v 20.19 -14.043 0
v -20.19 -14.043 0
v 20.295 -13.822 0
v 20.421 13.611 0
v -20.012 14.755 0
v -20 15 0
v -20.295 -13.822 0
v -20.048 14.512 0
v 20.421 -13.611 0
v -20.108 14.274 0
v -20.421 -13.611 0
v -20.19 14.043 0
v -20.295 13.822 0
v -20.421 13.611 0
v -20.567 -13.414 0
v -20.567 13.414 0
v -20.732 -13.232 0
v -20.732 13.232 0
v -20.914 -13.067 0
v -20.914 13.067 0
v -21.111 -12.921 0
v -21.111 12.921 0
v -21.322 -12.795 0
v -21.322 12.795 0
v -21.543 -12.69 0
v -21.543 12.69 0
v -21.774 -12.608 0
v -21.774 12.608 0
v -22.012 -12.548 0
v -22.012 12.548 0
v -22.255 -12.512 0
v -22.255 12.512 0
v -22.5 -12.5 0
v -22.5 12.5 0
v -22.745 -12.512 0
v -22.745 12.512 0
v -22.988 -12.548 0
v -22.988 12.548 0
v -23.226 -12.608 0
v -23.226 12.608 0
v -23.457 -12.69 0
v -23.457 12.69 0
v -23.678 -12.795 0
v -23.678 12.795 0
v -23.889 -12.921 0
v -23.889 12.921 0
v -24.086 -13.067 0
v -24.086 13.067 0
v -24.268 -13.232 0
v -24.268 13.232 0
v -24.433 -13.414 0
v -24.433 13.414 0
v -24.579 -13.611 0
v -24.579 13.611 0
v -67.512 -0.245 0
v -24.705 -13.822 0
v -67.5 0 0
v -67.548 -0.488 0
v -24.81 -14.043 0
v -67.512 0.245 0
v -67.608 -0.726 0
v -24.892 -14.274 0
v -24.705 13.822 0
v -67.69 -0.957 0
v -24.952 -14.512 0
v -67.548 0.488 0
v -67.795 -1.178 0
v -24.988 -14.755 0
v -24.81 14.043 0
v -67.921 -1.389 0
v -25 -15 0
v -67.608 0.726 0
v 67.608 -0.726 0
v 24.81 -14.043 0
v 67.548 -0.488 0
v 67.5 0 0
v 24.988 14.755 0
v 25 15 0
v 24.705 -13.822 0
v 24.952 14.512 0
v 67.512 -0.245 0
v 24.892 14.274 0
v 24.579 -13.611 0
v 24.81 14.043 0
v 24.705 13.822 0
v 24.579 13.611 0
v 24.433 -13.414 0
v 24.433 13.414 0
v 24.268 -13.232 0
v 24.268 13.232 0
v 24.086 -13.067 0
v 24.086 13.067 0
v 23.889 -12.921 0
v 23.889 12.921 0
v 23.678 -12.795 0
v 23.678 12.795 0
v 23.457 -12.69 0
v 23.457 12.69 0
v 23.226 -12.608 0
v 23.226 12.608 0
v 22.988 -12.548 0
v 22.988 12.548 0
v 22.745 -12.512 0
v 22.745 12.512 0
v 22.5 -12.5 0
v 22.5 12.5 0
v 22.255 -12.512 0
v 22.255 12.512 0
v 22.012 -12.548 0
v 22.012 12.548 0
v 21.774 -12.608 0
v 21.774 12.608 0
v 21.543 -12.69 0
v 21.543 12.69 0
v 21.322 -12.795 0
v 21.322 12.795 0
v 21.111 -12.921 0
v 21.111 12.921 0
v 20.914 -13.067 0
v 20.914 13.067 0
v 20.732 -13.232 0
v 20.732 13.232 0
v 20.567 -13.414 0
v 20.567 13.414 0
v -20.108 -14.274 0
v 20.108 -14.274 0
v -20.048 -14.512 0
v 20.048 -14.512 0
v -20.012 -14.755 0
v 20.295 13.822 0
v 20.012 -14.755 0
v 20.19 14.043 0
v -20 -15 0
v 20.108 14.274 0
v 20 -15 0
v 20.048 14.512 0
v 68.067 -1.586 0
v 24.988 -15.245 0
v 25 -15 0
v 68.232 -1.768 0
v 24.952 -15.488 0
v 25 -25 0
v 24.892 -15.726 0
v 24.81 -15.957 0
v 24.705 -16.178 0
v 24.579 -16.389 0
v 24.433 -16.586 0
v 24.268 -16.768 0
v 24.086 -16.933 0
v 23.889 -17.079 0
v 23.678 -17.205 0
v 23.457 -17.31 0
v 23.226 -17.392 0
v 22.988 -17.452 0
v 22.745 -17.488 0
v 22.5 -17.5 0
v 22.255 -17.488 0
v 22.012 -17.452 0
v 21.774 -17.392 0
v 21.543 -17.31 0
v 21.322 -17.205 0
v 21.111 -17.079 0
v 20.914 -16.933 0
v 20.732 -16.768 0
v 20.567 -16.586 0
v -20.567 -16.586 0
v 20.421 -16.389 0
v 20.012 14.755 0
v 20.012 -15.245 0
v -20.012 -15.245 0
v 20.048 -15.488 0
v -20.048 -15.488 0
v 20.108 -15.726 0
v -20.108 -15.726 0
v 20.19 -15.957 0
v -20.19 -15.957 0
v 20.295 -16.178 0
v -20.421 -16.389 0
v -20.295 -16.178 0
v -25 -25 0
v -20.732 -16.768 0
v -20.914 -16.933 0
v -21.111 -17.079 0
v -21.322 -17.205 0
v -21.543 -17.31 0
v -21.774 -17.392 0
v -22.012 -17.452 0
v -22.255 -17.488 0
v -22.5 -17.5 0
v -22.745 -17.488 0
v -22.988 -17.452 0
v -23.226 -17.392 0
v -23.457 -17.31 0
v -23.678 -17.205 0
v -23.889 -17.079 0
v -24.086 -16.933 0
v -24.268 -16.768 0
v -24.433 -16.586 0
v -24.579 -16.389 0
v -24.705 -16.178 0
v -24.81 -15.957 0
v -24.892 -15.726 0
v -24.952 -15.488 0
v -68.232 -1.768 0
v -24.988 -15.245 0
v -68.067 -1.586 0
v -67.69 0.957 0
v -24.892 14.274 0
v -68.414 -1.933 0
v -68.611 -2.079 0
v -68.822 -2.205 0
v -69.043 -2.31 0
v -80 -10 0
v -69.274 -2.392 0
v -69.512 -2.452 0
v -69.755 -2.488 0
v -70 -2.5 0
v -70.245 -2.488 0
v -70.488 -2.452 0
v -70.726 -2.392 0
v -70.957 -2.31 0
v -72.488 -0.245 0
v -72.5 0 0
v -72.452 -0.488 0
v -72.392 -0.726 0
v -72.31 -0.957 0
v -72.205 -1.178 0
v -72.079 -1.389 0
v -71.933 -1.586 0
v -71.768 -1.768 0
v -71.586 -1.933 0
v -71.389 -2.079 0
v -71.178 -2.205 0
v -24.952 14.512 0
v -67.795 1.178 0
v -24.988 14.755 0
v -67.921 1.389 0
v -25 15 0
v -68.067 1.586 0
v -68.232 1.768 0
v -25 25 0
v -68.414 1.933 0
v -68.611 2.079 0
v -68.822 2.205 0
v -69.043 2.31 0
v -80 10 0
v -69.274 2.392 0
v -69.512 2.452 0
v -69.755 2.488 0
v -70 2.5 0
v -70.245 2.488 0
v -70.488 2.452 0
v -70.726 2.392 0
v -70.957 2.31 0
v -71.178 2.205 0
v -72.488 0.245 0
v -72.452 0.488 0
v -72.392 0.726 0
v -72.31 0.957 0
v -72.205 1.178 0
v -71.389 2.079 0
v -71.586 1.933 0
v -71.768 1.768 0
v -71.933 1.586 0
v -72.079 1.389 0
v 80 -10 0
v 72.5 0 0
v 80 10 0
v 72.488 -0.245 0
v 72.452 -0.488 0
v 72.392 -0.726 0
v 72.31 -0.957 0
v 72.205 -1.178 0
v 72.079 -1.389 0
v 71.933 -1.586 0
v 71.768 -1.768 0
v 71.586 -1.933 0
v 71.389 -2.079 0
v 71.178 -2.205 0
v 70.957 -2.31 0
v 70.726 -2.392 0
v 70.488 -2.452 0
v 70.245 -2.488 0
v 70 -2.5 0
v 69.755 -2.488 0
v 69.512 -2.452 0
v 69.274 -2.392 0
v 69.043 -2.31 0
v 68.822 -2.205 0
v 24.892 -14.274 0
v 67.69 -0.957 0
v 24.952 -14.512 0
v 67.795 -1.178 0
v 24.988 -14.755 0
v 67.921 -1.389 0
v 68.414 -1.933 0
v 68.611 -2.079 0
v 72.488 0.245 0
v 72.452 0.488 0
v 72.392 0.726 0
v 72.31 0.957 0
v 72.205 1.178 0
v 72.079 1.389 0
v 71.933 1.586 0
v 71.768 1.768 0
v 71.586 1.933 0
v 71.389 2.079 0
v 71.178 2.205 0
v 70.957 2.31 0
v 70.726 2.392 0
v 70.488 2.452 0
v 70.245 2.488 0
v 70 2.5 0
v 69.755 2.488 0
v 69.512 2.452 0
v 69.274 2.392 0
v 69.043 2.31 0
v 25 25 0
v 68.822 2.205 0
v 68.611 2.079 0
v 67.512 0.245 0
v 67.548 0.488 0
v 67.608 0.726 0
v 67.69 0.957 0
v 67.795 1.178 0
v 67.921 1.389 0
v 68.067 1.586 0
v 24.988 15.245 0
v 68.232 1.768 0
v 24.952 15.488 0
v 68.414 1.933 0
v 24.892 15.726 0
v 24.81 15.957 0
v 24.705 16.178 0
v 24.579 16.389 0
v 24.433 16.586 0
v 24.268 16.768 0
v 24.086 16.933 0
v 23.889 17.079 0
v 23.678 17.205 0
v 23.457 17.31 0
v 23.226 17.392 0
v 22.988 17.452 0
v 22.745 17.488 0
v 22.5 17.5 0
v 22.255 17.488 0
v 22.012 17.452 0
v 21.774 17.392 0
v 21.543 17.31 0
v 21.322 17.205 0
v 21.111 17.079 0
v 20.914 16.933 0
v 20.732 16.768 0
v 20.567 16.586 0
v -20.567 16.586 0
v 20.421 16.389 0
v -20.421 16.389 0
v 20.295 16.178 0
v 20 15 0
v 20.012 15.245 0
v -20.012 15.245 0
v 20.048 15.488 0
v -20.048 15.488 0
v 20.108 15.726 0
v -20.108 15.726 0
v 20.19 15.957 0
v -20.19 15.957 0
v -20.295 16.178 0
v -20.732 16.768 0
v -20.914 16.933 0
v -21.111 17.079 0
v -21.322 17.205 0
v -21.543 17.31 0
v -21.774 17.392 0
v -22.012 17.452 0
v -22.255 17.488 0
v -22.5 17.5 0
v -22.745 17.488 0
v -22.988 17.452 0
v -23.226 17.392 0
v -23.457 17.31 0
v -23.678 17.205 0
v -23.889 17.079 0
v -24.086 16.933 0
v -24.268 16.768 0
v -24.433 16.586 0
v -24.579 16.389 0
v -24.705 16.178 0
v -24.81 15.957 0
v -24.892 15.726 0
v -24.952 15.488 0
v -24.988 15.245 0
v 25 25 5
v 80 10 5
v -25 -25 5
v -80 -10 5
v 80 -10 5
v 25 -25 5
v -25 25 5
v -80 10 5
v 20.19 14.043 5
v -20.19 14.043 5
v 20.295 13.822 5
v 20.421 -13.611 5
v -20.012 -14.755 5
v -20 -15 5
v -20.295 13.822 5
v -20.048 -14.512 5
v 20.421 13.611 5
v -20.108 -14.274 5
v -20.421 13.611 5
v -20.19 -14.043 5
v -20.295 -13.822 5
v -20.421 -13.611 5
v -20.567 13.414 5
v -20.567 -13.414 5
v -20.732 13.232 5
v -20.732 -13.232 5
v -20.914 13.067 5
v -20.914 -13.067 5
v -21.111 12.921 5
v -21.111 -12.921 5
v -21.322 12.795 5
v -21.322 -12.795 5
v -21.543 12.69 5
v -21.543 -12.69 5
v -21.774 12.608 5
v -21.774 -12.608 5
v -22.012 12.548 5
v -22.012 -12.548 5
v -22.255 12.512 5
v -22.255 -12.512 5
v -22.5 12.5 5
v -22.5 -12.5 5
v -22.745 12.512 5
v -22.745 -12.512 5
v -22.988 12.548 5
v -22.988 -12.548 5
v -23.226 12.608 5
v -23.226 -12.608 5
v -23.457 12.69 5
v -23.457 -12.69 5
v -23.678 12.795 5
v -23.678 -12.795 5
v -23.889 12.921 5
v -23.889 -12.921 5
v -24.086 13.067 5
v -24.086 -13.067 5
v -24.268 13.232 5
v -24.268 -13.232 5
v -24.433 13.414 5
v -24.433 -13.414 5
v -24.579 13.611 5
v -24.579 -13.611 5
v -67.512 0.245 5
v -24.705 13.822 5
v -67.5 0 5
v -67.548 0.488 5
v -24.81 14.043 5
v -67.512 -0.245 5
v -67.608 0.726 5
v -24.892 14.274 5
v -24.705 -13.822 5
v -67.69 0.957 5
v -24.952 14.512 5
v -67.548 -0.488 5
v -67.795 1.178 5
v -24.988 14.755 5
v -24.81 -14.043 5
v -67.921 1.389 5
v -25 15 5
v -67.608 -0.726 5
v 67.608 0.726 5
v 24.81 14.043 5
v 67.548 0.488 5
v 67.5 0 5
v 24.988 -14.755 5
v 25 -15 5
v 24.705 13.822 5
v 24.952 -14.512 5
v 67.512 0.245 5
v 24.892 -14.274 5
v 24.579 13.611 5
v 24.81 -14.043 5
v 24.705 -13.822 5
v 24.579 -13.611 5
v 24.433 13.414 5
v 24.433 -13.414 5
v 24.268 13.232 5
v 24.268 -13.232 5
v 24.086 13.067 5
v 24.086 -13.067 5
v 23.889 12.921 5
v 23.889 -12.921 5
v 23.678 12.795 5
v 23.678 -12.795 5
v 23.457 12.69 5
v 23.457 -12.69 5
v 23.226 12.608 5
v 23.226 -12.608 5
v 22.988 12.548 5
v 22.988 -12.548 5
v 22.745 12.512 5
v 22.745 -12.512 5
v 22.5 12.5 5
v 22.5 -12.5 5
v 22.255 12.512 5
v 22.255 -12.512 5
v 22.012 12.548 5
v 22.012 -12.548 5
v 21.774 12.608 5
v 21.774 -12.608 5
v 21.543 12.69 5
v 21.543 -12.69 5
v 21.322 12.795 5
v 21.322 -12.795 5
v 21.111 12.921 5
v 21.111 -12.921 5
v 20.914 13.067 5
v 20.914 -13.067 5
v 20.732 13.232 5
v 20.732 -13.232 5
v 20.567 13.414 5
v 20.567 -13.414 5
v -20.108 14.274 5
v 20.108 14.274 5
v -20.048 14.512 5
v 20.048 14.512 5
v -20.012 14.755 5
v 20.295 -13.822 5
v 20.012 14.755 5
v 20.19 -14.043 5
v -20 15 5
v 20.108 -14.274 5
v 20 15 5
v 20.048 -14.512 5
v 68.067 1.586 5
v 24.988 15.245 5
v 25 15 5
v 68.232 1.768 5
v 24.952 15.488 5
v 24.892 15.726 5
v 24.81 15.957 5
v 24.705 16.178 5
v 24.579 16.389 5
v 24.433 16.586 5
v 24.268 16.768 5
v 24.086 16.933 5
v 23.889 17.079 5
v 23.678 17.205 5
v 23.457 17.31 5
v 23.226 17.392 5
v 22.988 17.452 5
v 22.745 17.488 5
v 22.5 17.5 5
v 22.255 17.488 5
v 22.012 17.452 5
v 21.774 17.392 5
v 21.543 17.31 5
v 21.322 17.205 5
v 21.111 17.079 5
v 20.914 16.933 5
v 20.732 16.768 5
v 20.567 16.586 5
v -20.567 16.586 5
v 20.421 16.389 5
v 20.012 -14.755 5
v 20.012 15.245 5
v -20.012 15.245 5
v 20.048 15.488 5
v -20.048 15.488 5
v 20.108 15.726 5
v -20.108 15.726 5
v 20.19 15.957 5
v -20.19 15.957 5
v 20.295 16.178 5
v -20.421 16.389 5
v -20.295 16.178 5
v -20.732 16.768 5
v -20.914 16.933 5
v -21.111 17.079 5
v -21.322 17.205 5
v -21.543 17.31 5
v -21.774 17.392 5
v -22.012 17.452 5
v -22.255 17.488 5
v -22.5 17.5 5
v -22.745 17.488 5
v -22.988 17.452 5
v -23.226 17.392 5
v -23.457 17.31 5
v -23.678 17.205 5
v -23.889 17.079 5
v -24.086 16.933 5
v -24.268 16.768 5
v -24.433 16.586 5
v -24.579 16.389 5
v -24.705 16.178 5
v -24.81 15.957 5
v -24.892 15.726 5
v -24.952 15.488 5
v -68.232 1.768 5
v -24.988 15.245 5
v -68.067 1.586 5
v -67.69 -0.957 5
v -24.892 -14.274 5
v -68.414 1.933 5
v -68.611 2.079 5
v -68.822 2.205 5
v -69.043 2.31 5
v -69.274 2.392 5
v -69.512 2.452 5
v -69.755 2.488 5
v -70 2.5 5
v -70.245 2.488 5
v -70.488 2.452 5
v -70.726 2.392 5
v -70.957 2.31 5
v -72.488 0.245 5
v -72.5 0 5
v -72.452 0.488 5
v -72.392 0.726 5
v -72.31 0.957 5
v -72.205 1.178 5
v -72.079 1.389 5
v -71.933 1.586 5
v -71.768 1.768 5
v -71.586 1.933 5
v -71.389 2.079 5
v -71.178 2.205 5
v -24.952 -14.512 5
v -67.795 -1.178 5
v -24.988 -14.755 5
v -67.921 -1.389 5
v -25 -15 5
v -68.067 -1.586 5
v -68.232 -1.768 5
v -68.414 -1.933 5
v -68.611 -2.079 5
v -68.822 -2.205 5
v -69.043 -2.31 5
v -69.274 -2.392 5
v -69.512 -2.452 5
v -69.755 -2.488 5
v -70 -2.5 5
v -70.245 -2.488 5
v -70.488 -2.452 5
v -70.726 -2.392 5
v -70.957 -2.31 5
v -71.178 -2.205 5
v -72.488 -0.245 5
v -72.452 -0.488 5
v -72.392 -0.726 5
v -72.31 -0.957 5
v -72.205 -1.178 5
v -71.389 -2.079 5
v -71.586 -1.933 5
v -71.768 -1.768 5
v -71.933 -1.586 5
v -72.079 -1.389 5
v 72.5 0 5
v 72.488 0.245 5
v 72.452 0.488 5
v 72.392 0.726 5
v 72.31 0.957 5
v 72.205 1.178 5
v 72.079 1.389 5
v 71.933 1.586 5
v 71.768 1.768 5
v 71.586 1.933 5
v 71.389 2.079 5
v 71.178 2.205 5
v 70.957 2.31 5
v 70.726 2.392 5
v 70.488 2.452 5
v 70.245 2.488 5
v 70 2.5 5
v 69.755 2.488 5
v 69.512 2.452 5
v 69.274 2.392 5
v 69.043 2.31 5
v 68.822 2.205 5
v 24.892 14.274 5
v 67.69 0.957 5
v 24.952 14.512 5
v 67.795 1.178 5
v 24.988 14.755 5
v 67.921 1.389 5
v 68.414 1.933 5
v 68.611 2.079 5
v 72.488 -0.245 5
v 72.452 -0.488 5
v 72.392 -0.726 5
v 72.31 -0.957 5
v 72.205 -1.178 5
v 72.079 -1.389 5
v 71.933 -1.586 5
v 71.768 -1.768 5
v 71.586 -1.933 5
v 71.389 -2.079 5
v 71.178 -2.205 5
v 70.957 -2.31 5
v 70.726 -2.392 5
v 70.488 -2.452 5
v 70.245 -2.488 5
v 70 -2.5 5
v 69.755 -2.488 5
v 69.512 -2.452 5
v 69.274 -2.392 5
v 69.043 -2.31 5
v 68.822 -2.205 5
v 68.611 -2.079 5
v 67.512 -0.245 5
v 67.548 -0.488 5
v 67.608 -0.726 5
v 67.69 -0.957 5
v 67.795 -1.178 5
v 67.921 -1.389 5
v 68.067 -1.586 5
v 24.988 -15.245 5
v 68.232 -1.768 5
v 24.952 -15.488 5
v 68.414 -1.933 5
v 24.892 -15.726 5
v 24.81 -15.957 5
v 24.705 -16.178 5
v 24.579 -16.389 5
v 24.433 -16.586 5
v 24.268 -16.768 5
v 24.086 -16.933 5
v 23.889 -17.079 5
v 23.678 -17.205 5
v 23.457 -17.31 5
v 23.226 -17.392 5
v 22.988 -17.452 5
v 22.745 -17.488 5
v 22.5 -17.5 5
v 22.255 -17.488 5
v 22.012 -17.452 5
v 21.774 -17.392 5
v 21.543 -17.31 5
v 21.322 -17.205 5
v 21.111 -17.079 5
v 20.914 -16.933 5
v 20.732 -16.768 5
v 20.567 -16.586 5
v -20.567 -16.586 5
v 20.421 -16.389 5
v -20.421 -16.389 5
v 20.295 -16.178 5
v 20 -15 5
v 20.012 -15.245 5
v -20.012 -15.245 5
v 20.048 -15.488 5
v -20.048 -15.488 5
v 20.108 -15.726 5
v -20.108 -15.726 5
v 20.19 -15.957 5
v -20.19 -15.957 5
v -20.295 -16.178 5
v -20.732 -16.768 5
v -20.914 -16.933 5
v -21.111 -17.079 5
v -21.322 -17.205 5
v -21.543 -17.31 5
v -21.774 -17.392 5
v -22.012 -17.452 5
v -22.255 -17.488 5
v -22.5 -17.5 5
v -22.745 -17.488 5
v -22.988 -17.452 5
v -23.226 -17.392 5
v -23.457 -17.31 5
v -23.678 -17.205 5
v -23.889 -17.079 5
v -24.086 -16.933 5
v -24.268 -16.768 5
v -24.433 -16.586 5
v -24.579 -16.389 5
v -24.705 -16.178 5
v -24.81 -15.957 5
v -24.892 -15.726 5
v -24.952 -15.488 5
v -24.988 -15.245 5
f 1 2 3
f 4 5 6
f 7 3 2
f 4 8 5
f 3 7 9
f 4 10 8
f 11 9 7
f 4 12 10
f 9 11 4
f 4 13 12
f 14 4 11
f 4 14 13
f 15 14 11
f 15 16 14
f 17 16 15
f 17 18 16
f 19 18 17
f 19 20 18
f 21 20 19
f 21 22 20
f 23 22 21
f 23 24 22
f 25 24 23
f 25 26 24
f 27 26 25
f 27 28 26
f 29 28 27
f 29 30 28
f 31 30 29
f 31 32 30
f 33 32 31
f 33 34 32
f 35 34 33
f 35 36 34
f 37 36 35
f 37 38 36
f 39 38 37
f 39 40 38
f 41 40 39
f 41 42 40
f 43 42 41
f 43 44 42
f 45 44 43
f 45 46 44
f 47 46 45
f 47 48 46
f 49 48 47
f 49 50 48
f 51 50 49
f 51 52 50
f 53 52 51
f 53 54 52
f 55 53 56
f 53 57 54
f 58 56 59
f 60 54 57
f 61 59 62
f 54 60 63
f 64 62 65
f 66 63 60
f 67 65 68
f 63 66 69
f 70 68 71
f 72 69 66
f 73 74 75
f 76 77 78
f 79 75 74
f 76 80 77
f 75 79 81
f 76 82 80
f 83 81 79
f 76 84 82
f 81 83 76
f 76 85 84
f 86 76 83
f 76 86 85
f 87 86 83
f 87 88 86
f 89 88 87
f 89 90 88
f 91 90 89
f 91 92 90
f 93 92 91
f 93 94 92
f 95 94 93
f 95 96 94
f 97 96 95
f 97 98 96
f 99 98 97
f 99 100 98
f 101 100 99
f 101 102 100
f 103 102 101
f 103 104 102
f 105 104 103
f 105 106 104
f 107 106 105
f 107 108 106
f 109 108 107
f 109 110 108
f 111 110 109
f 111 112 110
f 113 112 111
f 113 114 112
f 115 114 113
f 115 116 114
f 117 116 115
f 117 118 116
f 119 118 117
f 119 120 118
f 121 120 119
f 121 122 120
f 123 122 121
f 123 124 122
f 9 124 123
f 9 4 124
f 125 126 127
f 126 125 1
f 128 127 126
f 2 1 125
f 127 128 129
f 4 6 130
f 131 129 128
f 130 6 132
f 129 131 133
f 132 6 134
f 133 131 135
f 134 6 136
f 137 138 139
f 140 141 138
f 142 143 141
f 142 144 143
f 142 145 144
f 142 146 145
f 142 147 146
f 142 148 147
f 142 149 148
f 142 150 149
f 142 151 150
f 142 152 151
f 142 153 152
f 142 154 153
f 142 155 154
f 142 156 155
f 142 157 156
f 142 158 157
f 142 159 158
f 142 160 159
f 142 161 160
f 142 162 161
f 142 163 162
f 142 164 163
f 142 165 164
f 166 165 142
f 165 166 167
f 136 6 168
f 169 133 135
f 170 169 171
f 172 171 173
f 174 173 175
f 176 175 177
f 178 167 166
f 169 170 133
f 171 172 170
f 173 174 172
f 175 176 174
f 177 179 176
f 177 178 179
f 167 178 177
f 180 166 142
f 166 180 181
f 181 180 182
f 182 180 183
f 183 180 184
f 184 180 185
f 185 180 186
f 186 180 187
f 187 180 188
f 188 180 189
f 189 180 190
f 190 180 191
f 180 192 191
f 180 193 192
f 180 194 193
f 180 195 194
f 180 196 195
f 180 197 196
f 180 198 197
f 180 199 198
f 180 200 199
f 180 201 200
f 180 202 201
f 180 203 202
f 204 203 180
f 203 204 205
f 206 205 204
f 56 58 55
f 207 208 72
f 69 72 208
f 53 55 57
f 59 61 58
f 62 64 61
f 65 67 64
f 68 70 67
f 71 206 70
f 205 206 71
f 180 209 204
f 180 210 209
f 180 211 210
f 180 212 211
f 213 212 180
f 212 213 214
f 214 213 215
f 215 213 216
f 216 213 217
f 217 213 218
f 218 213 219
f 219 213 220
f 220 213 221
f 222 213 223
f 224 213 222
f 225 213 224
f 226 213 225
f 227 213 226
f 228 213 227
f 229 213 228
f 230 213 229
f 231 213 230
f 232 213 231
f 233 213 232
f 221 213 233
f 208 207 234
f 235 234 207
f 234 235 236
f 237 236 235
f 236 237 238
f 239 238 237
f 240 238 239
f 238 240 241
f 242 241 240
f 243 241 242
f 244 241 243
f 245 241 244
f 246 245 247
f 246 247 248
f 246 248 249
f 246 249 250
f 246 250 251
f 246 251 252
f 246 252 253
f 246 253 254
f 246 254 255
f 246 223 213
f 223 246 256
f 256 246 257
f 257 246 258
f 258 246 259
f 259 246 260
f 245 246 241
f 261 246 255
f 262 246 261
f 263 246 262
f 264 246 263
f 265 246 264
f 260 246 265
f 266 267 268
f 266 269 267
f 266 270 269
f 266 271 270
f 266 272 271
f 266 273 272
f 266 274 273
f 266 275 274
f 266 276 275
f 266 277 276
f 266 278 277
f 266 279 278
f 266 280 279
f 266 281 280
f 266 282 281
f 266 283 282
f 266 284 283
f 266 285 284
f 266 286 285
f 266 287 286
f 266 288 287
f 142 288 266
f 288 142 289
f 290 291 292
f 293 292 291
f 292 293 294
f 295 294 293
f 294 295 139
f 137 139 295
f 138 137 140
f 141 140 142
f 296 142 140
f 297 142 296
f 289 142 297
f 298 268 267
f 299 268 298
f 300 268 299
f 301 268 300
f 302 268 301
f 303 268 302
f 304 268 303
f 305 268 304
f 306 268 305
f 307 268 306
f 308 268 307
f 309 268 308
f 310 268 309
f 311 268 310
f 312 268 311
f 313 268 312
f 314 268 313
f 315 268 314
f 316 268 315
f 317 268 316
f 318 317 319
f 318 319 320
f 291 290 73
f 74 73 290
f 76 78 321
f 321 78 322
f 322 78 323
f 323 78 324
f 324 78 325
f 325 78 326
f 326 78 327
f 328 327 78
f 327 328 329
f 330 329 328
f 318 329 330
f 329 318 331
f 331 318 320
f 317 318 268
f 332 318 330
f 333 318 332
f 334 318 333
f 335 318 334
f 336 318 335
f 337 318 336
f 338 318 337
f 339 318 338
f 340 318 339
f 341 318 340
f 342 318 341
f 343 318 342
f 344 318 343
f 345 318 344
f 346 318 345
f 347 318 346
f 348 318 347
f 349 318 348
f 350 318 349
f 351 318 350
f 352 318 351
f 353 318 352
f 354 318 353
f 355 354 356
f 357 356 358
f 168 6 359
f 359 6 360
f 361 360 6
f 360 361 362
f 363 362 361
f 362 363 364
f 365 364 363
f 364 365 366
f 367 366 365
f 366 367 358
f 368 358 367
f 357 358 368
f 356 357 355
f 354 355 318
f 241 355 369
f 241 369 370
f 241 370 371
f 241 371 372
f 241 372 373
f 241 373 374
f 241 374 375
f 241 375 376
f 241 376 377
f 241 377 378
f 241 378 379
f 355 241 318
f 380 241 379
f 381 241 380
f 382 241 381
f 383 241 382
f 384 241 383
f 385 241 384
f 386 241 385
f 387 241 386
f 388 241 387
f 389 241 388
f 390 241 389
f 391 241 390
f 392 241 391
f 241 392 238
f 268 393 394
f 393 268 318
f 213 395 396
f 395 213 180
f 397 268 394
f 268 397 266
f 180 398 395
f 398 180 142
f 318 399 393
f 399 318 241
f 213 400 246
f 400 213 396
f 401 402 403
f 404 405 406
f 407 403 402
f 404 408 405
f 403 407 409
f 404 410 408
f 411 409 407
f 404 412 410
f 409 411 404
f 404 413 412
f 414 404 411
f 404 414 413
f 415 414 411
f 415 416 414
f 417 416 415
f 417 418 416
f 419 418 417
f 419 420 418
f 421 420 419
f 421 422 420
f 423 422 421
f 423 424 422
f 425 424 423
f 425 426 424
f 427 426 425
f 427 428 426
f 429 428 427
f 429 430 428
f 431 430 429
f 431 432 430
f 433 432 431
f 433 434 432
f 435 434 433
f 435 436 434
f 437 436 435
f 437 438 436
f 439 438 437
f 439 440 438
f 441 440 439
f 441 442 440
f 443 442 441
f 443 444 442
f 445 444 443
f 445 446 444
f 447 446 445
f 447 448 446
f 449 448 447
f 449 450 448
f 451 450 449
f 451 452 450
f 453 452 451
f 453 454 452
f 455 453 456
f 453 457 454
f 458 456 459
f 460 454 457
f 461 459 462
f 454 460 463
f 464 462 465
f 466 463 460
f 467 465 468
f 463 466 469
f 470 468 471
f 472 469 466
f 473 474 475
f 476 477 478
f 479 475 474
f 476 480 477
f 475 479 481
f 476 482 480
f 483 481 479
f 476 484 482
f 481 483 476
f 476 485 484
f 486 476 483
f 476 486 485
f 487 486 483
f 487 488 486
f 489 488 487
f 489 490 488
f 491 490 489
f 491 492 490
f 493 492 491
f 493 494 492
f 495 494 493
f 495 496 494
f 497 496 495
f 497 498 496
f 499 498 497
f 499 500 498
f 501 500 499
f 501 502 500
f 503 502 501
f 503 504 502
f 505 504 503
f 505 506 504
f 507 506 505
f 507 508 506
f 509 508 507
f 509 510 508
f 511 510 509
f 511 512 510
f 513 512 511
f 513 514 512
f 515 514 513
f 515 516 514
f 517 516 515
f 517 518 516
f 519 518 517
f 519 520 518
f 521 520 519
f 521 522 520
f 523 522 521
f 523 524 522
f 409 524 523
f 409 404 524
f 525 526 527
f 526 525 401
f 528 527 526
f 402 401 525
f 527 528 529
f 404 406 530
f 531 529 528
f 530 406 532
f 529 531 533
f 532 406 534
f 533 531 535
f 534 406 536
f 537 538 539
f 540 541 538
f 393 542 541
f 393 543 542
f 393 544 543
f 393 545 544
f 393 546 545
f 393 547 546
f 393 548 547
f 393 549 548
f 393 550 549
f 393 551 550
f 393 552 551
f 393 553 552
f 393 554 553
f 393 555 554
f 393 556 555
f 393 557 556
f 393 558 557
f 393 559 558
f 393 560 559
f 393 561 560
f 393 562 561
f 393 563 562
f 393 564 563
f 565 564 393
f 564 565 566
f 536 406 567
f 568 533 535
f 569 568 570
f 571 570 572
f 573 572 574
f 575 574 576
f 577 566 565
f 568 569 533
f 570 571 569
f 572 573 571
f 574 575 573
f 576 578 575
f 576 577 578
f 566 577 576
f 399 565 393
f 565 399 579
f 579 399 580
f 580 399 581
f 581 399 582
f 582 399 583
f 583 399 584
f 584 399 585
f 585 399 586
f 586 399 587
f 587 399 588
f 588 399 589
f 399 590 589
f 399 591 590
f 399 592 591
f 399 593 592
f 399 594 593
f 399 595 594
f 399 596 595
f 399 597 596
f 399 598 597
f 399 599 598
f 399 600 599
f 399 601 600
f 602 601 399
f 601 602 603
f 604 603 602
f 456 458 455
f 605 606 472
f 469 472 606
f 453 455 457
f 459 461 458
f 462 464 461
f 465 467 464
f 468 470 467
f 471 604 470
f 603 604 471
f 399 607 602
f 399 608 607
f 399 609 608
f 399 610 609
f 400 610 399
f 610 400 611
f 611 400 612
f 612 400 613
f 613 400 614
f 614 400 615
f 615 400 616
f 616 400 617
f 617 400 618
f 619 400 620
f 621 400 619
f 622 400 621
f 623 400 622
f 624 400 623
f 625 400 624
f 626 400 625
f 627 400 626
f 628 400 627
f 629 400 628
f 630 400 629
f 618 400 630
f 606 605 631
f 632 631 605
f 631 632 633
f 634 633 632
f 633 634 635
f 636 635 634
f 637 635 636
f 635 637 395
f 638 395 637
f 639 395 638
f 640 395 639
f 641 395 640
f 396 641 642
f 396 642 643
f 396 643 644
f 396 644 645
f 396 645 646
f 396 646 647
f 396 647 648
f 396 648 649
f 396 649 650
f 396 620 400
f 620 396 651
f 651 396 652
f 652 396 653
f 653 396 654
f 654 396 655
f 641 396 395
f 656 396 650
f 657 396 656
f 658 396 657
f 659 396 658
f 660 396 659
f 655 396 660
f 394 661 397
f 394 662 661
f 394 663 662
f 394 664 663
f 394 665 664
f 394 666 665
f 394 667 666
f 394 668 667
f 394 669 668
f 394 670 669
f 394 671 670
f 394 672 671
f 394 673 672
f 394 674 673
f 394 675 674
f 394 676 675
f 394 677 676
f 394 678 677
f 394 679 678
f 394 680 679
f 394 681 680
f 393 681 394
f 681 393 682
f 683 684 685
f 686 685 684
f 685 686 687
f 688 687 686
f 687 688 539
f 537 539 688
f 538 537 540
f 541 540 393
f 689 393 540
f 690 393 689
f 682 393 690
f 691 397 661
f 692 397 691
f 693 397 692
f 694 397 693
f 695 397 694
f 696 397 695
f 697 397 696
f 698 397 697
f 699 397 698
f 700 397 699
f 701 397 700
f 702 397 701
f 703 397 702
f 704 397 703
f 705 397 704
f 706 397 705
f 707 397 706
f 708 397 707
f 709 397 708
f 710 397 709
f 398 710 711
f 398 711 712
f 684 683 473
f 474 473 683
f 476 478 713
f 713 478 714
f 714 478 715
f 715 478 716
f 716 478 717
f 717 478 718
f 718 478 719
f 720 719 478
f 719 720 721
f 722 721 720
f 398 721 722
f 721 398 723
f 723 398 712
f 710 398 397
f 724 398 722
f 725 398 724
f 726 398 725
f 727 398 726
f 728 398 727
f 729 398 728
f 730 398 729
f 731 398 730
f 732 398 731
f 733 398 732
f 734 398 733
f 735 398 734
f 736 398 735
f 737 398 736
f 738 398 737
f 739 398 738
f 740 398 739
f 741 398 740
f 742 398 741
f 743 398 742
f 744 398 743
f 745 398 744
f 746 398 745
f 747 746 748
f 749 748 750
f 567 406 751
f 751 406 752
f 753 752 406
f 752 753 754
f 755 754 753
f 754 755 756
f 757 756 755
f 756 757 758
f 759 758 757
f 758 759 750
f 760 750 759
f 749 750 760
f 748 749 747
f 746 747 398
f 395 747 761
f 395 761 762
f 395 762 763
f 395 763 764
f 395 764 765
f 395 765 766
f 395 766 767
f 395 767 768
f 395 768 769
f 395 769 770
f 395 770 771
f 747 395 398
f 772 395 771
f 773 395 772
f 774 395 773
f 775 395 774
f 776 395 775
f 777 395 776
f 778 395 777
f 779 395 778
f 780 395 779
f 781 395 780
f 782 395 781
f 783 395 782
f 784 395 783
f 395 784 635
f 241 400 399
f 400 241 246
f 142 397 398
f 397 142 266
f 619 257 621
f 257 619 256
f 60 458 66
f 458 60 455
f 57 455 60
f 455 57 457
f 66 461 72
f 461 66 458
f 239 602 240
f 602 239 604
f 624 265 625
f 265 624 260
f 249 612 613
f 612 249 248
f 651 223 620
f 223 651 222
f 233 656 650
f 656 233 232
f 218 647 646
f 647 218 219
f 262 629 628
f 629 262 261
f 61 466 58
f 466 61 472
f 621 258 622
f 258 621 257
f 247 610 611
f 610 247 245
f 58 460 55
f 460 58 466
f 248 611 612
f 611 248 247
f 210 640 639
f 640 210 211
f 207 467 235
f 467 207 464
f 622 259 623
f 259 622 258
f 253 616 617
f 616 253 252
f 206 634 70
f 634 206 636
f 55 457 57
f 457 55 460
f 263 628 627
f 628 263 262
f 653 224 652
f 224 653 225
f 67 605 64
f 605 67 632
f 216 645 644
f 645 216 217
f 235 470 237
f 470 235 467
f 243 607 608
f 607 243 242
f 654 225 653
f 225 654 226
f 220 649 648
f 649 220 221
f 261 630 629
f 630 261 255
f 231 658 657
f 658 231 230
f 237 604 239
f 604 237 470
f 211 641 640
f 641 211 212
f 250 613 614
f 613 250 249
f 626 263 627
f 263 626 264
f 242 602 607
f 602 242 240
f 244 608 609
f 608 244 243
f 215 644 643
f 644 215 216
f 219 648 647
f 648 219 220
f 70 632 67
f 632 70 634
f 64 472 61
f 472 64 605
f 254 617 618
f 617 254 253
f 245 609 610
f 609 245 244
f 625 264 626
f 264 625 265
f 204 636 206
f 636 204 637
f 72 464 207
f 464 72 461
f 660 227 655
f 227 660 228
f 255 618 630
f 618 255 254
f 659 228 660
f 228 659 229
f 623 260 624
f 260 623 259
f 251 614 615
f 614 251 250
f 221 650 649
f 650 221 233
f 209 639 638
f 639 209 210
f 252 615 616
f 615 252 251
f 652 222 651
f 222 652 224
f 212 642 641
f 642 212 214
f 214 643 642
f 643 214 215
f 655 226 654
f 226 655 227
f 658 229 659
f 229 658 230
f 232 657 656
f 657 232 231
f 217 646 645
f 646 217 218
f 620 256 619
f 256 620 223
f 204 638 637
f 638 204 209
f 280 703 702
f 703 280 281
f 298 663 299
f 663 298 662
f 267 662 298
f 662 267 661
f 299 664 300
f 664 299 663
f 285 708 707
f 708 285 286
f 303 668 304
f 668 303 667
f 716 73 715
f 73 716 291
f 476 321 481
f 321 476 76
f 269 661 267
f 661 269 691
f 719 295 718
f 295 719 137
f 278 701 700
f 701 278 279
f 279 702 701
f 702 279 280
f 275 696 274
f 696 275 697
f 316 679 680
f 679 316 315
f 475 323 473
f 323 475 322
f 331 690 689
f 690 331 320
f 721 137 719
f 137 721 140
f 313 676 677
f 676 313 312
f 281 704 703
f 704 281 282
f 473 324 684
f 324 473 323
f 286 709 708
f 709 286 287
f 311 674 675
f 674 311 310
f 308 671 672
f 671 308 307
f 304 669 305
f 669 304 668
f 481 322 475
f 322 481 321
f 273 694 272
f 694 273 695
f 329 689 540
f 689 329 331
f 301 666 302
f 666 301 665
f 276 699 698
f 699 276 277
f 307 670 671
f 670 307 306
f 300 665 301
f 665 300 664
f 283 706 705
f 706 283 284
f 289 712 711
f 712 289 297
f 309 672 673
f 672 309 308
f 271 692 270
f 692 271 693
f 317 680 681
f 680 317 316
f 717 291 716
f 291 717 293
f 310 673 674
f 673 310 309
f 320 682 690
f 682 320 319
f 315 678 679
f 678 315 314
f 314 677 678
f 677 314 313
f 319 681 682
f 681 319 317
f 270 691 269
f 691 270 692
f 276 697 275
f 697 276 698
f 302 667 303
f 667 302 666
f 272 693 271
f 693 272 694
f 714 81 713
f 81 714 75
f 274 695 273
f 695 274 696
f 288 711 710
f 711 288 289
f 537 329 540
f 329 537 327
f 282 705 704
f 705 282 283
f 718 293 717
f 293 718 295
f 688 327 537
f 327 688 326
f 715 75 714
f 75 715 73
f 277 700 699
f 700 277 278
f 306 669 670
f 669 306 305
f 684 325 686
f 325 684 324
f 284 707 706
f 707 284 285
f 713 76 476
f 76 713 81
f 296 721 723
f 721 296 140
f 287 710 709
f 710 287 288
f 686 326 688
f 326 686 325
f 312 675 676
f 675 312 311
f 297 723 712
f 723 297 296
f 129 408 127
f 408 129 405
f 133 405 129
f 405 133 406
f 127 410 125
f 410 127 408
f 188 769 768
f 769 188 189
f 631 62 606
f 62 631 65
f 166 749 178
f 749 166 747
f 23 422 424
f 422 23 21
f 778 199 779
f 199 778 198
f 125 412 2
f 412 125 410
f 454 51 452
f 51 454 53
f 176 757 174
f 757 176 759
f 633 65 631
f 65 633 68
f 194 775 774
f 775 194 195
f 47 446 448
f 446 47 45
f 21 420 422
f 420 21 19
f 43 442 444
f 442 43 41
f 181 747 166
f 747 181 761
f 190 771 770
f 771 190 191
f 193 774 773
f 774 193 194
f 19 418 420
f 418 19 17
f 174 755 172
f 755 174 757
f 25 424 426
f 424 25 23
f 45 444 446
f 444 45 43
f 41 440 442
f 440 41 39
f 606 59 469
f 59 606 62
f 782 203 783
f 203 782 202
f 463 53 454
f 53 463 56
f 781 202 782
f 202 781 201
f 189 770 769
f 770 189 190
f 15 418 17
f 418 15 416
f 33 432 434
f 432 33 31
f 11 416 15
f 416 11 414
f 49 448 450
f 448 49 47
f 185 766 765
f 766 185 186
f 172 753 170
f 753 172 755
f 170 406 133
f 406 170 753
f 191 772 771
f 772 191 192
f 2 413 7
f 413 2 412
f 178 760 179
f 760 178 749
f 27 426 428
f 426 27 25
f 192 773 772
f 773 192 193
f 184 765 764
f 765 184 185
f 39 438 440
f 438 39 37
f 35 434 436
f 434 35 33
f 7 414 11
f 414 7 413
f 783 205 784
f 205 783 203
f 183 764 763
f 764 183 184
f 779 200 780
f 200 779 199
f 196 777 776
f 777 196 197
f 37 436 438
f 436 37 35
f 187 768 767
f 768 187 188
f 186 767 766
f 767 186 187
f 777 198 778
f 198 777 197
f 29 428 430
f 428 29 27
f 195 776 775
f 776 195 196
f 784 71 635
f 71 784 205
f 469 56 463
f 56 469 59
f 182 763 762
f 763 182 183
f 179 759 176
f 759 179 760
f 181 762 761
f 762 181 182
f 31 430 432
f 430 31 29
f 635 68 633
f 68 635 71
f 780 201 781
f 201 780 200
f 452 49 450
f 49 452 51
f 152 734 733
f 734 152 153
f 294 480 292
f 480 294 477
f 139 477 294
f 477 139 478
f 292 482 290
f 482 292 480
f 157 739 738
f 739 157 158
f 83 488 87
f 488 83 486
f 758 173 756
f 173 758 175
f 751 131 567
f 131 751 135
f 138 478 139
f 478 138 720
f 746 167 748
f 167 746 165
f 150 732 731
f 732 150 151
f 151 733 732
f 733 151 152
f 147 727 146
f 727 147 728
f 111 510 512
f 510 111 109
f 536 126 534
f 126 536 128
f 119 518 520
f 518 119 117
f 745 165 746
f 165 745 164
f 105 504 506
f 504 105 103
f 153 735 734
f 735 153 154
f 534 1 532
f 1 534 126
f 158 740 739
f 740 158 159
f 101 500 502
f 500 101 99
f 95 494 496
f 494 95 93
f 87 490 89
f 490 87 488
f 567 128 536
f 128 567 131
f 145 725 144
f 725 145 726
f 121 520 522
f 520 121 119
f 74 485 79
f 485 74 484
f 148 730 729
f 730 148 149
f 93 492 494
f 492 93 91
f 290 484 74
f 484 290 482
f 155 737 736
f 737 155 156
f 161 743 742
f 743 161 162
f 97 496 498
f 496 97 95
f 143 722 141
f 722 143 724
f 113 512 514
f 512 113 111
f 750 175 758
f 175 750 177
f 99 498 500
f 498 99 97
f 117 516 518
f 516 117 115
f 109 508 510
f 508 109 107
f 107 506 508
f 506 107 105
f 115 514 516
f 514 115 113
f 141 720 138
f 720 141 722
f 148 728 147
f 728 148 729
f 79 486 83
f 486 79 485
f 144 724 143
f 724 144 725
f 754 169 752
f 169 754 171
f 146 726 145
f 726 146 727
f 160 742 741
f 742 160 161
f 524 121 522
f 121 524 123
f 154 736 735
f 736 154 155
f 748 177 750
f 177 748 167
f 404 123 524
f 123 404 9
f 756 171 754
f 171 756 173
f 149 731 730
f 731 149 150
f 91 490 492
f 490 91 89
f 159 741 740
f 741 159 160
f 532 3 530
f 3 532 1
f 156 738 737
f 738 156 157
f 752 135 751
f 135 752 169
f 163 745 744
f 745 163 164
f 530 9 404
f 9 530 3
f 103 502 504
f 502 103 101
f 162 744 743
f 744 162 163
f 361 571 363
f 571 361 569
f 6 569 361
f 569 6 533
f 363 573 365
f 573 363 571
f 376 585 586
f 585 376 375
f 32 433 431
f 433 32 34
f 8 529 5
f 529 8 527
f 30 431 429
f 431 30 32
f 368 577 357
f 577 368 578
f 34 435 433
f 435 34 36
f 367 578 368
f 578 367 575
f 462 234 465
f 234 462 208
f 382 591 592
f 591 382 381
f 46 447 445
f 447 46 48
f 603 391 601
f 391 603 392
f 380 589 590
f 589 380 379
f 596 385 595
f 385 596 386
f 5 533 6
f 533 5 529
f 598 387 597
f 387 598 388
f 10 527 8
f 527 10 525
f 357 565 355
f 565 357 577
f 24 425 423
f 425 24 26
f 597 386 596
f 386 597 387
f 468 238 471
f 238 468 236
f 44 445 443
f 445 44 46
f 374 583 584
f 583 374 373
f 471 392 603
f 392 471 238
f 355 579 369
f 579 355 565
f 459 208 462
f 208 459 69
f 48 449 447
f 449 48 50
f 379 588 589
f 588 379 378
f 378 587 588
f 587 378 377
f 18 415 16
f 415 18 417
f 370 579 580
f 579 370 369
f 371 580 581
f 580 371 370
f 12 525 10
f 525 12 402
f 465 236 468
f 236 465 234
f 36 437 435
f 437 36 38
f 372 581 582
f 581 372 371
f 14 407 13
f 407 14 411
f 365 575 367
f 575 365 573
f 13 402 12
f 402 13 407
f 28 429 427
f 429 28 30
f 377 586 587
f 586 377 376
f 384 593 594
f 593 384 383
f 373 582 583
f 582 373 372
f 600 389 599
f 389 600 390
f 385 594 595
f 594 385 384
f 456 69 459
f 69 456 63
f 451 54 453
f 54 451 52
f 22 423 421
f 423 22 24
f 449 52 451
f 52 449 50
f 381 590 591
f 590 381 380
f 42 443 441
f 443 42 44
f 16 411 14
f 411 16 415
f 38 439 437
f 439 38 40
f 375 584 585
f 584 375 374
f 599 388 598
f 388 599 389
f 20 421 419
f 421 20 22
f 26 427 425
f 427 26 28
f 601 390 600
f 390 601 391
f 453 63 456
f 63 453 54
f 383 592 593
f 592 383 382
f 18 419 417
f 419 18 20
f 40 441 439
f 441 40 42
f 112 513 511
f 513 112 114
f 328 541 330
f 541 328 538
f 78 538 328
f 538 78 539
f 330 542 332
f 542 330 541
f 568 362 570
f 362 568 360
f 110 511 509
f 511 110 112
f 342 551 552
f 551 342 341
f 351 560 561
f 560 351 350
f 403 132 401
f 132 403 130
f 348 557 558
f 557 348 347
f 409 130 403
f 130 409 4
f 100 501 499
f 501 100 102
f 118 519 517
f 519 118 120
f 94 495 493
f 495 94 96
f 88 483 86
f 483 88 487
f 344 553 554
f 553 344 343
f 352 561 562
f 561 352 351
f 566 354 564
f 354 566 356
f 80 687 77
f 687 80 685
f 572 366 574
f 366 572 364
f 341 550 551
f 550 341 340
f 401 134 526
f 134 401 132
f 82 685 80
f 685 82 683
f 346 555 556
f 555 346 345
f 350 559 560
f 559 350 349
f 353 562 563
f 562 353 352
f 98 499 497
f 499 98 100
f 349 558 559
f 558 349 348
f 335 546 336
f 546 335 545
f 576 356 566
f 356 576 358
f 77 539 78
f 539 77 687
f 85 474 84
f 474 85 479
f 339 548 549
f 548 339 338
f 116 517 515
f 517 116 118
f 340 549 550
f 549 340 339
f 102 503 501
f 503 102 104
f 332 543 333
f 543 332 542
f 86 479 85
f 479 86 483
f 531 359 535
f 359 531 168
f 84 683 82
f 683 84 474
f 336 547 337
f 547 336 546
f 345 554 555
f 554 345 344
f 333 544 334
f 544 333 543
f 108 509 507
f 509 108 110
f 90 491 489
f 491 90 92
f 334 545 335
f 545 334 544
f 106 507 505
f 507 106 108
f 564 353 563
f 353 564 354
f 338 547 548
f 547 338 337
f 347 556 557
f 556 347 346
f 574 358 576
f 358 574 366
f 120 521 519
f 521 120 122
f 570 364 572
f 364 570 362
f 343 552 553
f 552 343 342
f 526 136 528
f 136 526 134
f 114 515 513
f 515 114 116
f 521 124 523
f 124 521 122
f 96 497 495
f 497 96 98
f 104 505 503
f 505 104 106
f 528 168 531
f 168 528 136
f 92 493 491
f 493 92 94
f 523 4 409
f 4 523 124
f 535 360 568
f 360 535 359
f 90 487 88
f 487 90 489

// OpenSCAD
// ============================================================
//  Achteck – vollständig parametrisierbar
// ============================================================
//
//  Parameter:
//    breite           – Gesamtbreite des Achtecks (x-Achse), mm
//    hoehe            – Gesamthöhe des Achtecks (y-Achse), mm
//    tiefe            – Extrusionstiefe (z-Achse), mm
//    seite_oben_unten – Länge der oberen und unteren flachen Seite, mm
//    seite_links_rechts – Höhe der linken und rechten flachen Seite, mm
//
//  Bedingungen:
//    seite_oben_unten   < breite
//    seite_links_rechts < hoehe
// ============================================================
variante = 2;

m5                 = 5;
breite             = 140;    // Gesamtbreite, mm
hoehe              = 30;     // Gesamthöhe,   mm
tiefe              = 5;      // Extrusionstiefe (z-Achse), mm
seite_oben_unten   = m5*4;   // Länge der oberen/unteren Seite, mm
seite_links_rechts = m5*4;   // Höhe der linken/rechten Seite, mm
stuhlbein          = 40;
$fn=64;

// ---- Modul -------------------------------------------------
module achteck(b, h, t, su, slr) {
    hb   = b   / 2;   // halbe Breite
    hh   = h   / 2;   // halbe Höhe
    hsu  = su  / 2;   // halbe Länge oben/unten
    hslr = slr / 2;   // halbe Höhe links/rechts

    // 8 Punkte im Uhrzeigersinn, beginnend oben-links
    punkte = [
        [-hsu,   hh    ],   // oben-links
        [ hsu,   hh    ],   // oben-rechts
        [ hb,    hslr  ],   // rechts-oben
        [ hb,   -hslr  ],   // rechts-unten
        [ hsu,  -hh    ],   // unten-rechts
        [-hsu,  -hh    ],   // unten-links
        [-hb,   -hslr  ],   // links-unten
        [-hb,    hslr  ]    // links-oben
    ];

    linear_extrude(height = t, center = false)
        polygon(points = punkte);
}

// ---- Aufruf ------------------------------------------------
if ( 1 == variante ) {
    difference()
    {
        achteck(breite+4*m5, hoehe+4*m5, tiefe, seite_oben_unten, seite_links_rechts);
        translate([-breite/2,0,-.1]) cylinder(tiefe+.2,m5/2,m5/2);
        translate([ breite/2,0,-.1]) cylinder(tiefe+.2,m5/2,m5/2);
        translate([0, hoehe/2,-.1]) cylinder(tiefe+.2,m5/2,m5/2);
        translate([0,-hoehe/2,-.1]) cylinder(tiefe+.2,m5/2,m5/2);
    }
} else {
    difference()
    {
        achteck(breite+4*m5, hoehe+4*m5, tiefe, stuhlbein+m5*2, seite_links_rechts);
        translate([-breite/2,0,-.1]) cylinder(tiefe+.2,m5/2,m5/2);
        translate([ breite/2,0,-.1]) cylinder(tiefe+.2,m5/2,m5/2);
        translate([-stuhlbein/2-m5/2,-hoehe/2,-.1]) cylinder(tiefe+.2,m5/2,m5/2);
        translate([ stuhlbein/2+m5/2,-hoehe/2,-.1]) cylinder(tiefe+.2,m5/2,m5/2);
        translate([-stuhlbein/2-m5/2, hoehe/2,-.1]) cylinder(tiefe+.2,m5/2,m5/2);
        translate([ stuhlbein/2+m5/2, hoehe/2,-.1]) cylinder(tiefe+.2,m5/2,m5/2);
    }
}
